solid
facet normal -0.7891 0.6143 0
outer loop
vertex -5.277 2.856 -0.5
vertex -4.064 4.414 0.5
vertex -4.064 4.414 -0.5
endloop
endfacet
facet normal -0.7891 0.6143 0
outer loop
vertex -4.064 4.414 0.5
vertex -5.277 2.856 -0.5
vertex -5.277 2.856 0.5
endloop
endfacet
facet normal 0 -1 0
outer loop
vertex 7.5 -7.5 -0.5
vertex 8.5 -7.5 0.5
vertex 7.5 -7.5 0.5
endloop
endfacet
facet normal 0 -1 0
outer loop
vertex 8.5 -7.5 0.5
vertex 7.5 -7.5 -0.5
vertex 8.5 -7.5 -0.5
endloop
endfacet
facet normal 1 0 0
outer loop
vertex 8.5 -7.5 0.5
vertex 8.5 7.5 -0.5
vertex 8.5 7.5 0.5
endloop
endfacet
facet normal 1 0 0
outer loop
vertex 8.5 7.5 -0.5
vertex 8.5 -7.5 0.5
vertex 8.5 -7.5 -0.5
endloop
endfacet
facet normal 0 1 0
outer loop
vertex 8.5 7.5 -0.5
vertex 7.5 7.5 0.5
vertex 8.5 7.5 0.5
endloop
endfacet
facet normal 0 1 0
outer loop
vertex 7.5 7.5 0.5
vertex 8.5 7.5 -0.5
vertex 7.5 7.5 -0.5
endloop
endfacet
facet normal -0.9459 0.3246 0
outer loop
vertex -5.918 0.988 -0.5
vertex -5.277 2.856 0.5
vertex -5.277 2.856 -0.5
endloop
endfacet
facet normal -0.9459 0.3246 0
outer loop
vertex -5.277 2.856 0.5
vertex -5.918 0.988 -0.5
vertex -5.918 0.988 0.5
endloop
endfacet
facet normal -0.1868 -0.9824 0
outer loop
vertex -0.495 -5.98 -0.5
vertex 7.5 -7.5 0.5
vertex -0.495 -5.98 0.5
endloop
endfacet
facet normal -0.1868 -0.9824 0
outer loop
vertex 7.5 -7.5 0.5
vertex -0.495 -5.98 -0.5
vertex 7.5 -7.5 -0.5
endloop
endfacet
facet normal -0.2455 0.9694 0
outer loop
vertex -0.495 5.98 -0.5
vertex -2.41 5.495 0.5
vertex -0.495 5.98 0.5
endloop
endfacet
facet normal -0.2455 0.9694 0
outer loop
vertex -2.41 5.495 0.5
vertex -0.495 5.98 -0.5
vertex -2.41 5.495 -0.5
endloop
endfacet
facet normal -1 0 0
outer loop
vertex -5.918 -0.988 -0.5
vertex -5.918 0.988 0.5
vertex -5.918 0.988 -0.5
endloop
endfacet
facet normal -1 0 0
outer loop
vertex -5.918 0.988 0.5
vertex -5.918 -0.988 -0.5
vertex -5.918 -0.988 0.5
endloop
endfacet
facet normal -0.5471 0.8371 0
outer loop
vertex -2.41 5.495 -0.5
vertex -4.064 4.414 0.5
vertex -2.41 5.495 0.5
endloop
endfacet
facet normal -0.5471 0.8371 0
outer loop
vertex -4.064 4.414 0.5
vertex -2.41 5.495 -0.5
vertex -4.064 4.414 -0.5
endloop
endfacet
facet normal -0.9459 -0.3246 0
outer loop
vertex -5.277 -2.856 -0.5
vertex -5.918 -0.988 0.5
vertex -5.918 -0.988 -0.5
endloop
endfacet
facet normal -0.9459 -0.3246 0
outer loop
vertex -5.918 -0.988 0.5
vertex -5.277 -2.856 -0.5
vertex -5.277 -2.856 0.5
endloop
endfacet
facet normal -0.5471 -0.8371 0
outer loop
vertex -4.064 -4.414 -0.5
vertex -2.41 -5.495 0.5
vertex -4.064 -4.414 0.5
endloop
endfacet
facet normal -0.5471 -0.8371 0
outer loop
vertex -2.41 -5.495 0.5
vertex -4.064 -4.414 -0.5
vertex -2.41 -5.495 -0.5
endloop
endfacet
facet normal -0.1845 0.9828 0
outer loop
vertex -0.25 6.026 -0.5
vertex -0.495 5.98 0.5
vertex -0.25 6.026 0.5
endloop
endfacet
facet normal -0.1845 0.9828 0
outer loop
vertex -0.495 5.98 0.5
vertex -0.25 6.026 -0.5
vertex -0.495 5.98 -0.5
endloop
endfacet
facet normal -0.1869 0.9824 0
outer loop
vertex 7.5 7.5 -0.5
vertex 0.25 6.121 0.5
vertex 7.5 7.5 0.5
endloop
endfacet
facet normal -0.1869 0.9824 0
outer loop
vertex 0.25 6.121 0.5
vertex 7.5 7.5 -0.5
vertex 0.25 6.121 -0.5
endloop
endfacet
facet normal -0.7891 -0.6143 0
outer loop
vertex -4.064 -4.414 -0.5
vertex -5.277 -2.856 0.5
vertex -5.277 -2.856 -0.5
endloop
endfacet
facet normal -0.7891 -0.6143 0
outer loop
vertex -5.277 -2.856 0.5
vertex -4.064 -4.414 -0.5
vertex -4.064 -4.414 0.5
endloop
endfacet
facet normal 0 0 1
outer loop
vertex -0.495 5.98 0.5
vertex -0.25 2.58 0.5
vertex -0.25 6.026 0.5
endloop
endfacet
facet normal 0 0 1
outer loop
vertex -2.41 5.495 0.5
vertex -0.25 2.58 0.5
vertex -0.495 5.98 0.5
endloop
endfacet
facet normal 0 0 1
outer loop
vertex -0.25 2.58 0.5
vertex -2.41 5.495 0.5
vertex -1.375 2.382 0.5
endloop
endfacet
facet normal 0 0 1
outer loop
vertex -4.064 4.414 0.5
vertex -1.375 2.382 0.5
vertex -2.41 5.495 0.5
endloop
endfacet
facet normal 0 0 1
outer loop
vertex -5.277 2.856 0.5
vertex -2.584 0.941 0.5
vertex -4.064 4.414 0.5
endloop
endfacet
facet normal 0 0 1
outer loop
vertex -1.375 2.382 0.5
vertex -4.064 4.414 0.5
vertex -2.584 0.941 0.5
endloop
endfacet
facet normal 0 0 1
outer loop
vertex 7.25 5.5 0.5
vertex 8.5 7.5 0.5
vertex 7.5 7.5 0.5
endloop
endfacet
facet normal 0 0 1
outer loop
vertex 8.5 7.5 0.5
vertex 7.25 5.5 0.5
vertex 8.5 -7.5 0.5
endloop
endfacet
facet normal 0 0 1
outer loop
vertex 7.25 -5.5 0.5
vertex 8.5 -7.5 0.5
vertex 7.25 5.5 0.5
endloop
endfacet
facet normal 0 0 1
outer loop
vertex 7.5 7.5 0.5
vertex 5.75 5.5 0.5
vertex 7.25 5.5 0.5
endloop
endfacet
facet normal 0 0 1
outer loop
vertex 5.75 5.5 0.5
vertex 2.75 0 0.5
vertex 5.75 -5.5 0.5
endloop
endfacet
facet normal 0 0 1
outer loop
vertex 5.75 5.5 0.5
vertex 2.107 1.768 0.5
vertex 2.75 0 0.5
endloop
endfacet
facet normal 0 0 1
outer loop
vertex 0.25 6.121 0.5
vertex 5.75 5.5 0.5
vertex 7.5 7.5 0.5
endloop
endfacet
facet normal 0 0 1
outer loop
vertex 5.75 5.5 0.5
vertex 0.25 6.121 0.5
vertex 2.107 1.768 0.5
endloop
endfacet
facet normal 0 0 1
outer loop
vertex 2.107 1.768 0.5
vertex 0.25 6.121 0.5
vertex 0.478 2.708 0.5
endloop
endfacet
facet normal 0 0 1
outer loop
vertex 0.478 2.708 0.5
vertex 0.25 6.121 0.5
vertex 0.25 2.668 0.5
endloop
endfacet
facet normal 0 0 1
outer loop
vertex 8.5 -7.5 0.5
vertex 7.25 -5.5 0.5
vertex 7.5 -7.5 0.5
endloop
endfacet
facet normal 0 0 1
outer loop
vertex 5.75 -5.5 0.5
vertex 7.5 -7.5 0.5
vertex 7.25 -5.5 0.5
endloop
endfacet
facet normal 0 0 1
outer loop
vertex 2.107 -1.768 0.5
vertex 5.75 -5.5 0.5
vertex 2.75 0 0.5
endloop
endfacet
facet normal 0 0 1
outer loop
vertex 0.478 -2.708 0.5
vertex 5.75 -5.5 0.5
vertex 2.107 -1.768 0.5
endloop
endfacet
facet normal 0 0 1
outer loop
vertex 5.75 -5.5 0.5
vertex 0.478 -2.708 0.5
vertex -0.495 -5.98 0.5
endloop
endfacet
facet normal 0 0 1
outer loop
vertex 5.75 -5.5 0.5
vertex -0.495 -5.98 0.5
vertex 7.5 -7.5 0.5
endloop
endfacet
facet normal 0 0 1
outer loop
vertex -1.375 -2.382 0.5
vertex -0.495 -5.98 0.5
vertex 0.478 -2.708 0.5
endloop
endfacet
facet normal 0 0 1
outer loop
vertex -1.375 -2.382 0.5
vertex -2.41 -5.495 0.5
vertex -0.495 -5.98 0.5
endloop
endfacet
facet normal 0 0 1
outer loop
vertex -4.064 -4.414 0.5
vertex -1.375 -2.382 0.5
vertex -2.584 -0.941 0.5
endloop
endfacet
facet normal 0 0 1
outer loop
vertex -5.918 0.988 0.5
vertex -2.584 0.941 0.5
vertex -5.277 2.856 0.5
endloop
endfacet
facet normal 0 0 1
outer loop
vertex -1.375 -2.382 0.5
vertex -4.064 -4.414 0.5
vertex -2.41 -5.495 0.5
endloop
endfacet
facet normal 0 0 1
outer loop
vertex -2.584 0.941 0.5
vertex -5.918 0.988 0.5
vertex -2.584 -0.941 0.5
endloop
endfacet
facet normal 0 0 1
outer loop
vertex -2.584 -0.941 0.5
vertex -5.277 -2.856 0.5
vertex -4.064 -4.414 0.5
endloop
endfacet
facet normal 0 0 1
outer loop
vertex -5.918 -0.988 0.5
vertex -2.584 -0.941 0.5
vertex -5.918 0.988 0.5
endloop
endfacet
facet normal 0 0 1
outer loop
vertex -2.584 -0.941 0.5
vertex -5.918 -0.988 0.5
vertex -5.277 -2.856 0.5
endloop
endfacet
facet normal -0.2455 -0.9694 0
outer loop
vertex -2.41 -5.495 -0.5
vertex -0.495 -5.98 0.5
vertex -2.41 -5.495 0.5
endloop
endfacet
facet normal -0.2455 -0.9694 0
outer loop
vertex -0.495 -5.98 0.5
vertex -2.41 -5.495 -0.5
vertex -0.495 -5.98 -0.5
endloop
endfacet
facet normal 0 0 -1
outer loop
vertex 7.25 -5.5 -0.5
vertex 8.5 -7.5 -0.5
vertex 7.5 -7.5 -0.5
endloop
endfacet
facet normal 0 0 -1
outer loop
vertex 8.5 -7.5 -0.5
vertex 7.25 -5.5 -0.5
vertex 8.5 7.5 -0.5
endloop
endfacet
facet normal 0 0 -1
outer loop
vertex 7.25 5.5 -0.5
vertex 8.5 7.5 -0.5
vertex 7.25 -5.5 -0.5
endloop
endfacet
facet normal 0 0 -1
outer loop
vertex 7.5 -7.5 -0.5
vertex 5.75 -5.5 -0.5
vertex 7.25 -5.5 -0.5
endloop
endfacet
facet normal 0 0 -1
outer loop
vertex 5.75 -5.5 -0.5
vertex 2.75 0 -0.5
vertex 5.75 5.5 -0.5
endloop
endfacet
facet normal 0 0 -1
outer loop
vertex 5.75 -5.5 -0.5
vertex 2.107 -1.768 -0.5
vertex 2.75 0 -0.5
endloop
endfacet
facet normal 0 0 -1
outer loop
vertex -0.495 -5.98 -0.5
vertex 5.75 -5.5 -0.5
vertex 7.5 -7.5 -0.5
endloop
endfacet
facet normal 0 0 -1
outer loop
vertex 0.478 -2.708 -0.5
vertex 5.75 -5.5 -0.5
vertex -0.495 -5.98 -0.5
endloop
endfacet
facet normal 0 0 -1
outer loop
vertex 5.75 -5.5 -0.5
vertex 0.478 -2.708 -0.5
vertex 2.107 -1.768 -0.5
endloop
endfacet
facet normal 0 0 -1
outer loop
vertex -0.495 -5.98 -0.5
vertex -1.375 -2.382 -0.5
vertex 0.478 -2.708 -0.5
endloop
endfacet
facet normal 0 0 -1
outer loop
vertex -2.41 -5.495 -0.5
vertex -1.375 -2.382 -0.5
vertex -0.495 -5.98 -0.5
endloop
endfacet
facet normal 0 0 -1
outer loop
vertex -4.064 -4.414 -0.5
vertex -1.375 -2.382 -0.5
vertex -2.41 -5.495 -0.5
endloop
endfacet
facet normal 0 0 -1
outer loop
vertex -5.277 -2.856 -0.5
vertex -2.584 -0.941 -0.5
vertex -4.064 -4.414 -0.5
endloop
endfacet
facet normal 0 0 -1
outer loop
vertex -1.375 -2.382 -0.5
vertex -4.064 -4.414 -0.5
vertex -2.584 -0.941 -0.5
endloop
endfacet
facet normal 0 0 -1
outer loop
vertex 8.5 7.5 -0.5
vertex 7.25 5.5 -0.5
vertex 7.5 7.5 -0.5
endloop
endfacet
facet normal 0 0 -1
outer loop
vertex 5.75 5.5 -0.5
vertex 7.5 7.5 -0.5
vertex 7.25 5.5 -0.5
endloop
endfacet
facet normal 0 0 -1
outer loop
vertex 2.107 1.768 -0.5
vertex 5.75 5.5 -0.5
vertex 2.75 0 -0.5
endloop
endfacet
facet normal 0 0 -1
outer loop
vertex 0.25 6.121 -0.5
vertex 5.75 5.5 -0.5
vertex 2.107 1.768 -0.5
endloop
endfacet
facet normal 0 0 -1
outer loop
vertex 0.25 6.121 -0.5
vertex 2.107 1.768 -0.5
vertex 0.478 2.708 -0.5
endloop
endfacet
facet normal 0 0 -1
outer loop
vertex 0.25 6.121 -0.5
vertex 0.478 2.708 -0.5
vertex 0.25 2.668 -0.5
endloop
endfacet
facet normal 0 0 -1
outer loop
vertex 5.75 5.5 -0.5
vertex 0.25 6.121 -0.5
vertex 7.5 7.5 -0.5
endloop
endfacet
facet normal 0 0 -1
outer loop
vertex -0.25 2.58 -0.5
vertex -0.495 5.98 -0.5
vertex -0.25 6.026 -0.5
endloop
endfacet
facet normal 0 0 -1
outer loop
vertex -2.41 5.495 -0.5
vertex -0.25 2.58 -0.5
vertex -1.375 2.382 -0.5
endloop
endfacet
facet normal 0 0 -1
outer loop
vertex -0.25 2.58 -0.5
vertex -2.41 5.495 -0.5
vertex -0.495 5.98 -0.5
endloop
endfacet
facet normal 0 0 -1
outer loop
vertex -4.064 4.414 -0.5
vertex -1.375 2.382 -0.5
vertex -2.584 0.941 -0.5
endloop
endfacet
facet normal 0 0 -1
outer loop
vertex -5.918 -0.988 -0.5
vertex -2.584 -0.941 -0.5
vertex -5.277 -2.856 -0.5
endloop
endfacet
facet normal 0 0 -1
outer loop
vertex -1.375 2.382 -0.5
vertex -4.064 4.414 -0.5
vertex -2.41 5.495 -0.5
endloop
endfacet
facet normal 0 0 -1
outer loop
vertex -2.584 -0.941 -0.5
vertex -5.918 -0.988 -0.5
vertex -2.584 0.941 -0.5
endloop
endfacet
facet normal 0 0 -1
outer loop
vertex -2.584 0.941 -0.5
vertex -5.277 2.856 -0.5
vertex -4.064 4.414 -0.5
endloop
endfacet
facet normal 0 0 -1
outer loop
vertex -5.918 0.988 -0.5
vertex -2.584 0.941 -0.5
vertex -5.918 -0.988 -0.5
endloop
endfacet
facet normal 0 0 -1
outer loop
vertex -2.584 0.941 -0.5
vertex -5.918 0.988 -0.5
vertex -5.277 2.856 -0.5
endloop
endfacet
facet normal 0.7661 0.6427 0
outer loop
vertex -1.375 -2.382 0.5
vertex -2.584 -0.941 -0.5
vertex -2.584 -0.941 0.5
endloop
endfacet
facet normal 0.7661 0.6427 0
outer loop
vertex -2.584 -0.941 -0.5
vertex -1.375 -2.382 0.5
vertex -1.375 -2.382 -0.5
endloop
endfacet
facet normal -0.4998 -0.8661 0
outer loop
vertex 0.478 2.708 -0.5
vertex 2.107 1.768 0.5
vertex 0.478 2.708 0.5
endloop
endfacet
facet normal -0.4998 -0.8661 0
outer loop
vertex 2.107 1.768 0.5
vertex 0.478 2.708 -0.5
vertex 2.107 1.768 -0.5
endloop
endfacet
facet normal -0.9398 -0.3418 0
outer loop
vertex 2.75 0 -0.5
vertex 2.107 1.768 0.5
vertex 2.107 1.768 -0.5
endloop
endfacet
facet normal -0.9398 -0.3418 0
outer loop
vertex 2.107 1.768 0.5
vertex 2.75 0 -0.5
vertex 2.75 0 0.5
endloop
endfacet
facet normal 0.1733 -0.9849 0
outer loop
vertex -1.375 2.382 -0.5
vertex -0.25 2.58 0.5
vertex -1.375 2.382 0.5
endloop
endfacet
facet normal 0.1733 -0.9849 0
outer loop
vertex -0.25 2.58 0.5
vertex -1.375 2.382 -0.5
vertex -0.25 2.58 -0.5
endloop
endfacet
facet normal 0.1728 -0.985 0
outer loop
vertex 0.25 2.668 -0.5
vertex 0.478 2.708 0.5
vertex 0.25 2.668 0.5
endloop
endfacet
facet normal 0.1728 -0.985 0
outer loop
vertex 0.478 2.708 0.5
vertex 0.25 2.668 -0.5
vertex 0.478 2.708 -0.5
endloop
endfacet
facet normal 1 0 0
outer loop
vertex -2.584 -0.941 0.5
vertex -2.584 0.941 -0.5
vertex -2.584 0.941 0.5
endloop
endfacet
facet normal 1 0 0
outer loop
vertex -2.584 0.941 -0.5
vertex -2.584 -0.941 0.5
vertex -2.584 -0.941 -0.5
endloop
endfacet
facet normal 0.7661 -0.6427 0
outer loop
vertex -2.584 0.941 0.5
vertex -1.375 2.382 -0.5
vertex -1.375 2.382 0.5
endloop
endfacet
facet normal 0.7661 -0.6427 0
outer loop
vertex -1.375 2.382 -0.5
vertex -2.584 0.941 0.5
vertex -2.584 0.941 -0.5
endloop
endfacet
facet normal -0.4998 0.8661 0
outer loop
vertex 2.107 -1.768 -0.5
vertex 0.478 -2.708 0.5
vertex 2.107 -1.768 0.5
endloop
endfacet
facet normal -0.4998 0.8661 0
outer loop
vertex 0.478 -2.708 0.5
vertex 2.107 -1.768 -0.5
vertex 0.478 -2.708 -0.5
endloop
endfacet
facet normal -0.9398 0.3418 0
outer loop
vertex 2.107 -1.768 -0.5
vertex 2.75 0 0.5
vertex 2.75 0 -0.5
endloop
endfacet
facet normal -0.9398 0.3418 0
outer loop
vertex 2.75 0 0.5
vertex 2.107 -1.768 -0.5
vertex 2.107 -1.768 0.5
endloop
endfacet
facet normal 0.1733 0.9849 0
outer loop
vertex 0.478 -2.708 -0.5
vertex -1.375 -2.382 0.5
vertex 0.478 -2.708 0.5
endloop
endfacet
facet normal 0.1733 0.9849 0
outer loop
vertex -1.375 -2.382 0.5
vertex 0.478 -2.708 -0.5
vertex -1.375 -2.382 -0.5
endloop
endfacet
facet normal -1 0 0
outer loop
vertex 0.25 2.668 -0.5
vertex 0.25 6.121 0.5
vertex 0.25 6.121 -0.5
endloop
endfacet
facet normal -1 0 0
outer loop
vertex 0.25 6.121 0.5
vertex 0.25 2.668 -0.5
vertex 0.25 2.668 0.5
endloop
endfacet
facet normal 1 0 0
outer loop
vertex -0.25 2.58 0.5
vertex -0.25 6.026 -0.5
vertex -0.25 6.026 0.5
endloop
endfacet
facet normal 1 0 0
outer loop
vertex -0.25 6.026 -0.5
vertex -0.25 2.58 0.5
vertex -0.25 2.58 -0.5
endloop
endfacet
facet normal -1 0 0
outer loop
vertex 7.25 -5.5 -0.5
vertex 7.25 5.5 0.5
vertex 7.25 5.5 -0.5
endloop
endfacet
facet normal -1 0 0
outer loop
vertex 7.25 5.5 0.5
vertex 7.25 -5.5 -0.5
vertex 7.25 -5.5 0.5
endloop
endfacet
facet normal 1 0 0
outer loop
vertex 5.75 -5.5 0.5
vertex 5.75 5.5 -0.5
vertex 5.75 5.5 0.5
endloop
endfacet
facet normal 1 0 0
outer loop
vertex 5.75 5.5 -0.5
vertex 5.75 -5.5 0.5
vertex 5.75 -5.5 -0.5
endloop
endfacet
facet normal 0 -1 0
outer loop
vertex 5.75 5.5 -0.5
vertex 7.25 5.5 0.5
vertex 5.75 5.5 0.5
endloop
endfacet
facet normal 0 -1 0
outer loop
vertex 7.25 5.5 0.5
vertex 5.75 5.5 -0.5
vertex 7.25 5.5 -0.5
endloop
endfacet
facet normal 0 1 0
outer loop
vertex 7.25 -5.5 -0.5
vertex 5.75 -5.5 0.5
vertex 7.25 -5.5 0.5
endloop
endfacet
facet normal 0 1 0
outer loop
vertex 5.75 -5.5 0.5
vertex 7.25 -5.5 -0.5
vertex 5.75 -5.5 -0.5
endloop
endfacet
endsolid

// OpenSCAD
thikns = 1;
externalDia = 12;
holeDia = 5.5;
slotThkns = 0.5;
slot2Thkns = 1.5;

widnss = 15;

leftRow = 8;

Uzel();

module Uzel() {
      
  difference(){
    hull(){
      cylinder(h=thikns, d = externalDia, center=true);

      translate([leftRow, 0, 0])
      cube([ 1 , widnss , thikns ] , center=true );
    }

    cylinder(h=thikns+2, d = holeDia, center=true);

    translate([0, widnss/2, 0])
    cube([ slotThkns , widnss , thikns+2 ] , center=true );

    translate([leftRow-slot2Thkns, , 0])
    cube([ slot2Thkns , widnss-4 , thikns+2 ] , center=true );
  }

  // cylinder(h=thikns, d = externalDia, center=true);
   
  //}
}
